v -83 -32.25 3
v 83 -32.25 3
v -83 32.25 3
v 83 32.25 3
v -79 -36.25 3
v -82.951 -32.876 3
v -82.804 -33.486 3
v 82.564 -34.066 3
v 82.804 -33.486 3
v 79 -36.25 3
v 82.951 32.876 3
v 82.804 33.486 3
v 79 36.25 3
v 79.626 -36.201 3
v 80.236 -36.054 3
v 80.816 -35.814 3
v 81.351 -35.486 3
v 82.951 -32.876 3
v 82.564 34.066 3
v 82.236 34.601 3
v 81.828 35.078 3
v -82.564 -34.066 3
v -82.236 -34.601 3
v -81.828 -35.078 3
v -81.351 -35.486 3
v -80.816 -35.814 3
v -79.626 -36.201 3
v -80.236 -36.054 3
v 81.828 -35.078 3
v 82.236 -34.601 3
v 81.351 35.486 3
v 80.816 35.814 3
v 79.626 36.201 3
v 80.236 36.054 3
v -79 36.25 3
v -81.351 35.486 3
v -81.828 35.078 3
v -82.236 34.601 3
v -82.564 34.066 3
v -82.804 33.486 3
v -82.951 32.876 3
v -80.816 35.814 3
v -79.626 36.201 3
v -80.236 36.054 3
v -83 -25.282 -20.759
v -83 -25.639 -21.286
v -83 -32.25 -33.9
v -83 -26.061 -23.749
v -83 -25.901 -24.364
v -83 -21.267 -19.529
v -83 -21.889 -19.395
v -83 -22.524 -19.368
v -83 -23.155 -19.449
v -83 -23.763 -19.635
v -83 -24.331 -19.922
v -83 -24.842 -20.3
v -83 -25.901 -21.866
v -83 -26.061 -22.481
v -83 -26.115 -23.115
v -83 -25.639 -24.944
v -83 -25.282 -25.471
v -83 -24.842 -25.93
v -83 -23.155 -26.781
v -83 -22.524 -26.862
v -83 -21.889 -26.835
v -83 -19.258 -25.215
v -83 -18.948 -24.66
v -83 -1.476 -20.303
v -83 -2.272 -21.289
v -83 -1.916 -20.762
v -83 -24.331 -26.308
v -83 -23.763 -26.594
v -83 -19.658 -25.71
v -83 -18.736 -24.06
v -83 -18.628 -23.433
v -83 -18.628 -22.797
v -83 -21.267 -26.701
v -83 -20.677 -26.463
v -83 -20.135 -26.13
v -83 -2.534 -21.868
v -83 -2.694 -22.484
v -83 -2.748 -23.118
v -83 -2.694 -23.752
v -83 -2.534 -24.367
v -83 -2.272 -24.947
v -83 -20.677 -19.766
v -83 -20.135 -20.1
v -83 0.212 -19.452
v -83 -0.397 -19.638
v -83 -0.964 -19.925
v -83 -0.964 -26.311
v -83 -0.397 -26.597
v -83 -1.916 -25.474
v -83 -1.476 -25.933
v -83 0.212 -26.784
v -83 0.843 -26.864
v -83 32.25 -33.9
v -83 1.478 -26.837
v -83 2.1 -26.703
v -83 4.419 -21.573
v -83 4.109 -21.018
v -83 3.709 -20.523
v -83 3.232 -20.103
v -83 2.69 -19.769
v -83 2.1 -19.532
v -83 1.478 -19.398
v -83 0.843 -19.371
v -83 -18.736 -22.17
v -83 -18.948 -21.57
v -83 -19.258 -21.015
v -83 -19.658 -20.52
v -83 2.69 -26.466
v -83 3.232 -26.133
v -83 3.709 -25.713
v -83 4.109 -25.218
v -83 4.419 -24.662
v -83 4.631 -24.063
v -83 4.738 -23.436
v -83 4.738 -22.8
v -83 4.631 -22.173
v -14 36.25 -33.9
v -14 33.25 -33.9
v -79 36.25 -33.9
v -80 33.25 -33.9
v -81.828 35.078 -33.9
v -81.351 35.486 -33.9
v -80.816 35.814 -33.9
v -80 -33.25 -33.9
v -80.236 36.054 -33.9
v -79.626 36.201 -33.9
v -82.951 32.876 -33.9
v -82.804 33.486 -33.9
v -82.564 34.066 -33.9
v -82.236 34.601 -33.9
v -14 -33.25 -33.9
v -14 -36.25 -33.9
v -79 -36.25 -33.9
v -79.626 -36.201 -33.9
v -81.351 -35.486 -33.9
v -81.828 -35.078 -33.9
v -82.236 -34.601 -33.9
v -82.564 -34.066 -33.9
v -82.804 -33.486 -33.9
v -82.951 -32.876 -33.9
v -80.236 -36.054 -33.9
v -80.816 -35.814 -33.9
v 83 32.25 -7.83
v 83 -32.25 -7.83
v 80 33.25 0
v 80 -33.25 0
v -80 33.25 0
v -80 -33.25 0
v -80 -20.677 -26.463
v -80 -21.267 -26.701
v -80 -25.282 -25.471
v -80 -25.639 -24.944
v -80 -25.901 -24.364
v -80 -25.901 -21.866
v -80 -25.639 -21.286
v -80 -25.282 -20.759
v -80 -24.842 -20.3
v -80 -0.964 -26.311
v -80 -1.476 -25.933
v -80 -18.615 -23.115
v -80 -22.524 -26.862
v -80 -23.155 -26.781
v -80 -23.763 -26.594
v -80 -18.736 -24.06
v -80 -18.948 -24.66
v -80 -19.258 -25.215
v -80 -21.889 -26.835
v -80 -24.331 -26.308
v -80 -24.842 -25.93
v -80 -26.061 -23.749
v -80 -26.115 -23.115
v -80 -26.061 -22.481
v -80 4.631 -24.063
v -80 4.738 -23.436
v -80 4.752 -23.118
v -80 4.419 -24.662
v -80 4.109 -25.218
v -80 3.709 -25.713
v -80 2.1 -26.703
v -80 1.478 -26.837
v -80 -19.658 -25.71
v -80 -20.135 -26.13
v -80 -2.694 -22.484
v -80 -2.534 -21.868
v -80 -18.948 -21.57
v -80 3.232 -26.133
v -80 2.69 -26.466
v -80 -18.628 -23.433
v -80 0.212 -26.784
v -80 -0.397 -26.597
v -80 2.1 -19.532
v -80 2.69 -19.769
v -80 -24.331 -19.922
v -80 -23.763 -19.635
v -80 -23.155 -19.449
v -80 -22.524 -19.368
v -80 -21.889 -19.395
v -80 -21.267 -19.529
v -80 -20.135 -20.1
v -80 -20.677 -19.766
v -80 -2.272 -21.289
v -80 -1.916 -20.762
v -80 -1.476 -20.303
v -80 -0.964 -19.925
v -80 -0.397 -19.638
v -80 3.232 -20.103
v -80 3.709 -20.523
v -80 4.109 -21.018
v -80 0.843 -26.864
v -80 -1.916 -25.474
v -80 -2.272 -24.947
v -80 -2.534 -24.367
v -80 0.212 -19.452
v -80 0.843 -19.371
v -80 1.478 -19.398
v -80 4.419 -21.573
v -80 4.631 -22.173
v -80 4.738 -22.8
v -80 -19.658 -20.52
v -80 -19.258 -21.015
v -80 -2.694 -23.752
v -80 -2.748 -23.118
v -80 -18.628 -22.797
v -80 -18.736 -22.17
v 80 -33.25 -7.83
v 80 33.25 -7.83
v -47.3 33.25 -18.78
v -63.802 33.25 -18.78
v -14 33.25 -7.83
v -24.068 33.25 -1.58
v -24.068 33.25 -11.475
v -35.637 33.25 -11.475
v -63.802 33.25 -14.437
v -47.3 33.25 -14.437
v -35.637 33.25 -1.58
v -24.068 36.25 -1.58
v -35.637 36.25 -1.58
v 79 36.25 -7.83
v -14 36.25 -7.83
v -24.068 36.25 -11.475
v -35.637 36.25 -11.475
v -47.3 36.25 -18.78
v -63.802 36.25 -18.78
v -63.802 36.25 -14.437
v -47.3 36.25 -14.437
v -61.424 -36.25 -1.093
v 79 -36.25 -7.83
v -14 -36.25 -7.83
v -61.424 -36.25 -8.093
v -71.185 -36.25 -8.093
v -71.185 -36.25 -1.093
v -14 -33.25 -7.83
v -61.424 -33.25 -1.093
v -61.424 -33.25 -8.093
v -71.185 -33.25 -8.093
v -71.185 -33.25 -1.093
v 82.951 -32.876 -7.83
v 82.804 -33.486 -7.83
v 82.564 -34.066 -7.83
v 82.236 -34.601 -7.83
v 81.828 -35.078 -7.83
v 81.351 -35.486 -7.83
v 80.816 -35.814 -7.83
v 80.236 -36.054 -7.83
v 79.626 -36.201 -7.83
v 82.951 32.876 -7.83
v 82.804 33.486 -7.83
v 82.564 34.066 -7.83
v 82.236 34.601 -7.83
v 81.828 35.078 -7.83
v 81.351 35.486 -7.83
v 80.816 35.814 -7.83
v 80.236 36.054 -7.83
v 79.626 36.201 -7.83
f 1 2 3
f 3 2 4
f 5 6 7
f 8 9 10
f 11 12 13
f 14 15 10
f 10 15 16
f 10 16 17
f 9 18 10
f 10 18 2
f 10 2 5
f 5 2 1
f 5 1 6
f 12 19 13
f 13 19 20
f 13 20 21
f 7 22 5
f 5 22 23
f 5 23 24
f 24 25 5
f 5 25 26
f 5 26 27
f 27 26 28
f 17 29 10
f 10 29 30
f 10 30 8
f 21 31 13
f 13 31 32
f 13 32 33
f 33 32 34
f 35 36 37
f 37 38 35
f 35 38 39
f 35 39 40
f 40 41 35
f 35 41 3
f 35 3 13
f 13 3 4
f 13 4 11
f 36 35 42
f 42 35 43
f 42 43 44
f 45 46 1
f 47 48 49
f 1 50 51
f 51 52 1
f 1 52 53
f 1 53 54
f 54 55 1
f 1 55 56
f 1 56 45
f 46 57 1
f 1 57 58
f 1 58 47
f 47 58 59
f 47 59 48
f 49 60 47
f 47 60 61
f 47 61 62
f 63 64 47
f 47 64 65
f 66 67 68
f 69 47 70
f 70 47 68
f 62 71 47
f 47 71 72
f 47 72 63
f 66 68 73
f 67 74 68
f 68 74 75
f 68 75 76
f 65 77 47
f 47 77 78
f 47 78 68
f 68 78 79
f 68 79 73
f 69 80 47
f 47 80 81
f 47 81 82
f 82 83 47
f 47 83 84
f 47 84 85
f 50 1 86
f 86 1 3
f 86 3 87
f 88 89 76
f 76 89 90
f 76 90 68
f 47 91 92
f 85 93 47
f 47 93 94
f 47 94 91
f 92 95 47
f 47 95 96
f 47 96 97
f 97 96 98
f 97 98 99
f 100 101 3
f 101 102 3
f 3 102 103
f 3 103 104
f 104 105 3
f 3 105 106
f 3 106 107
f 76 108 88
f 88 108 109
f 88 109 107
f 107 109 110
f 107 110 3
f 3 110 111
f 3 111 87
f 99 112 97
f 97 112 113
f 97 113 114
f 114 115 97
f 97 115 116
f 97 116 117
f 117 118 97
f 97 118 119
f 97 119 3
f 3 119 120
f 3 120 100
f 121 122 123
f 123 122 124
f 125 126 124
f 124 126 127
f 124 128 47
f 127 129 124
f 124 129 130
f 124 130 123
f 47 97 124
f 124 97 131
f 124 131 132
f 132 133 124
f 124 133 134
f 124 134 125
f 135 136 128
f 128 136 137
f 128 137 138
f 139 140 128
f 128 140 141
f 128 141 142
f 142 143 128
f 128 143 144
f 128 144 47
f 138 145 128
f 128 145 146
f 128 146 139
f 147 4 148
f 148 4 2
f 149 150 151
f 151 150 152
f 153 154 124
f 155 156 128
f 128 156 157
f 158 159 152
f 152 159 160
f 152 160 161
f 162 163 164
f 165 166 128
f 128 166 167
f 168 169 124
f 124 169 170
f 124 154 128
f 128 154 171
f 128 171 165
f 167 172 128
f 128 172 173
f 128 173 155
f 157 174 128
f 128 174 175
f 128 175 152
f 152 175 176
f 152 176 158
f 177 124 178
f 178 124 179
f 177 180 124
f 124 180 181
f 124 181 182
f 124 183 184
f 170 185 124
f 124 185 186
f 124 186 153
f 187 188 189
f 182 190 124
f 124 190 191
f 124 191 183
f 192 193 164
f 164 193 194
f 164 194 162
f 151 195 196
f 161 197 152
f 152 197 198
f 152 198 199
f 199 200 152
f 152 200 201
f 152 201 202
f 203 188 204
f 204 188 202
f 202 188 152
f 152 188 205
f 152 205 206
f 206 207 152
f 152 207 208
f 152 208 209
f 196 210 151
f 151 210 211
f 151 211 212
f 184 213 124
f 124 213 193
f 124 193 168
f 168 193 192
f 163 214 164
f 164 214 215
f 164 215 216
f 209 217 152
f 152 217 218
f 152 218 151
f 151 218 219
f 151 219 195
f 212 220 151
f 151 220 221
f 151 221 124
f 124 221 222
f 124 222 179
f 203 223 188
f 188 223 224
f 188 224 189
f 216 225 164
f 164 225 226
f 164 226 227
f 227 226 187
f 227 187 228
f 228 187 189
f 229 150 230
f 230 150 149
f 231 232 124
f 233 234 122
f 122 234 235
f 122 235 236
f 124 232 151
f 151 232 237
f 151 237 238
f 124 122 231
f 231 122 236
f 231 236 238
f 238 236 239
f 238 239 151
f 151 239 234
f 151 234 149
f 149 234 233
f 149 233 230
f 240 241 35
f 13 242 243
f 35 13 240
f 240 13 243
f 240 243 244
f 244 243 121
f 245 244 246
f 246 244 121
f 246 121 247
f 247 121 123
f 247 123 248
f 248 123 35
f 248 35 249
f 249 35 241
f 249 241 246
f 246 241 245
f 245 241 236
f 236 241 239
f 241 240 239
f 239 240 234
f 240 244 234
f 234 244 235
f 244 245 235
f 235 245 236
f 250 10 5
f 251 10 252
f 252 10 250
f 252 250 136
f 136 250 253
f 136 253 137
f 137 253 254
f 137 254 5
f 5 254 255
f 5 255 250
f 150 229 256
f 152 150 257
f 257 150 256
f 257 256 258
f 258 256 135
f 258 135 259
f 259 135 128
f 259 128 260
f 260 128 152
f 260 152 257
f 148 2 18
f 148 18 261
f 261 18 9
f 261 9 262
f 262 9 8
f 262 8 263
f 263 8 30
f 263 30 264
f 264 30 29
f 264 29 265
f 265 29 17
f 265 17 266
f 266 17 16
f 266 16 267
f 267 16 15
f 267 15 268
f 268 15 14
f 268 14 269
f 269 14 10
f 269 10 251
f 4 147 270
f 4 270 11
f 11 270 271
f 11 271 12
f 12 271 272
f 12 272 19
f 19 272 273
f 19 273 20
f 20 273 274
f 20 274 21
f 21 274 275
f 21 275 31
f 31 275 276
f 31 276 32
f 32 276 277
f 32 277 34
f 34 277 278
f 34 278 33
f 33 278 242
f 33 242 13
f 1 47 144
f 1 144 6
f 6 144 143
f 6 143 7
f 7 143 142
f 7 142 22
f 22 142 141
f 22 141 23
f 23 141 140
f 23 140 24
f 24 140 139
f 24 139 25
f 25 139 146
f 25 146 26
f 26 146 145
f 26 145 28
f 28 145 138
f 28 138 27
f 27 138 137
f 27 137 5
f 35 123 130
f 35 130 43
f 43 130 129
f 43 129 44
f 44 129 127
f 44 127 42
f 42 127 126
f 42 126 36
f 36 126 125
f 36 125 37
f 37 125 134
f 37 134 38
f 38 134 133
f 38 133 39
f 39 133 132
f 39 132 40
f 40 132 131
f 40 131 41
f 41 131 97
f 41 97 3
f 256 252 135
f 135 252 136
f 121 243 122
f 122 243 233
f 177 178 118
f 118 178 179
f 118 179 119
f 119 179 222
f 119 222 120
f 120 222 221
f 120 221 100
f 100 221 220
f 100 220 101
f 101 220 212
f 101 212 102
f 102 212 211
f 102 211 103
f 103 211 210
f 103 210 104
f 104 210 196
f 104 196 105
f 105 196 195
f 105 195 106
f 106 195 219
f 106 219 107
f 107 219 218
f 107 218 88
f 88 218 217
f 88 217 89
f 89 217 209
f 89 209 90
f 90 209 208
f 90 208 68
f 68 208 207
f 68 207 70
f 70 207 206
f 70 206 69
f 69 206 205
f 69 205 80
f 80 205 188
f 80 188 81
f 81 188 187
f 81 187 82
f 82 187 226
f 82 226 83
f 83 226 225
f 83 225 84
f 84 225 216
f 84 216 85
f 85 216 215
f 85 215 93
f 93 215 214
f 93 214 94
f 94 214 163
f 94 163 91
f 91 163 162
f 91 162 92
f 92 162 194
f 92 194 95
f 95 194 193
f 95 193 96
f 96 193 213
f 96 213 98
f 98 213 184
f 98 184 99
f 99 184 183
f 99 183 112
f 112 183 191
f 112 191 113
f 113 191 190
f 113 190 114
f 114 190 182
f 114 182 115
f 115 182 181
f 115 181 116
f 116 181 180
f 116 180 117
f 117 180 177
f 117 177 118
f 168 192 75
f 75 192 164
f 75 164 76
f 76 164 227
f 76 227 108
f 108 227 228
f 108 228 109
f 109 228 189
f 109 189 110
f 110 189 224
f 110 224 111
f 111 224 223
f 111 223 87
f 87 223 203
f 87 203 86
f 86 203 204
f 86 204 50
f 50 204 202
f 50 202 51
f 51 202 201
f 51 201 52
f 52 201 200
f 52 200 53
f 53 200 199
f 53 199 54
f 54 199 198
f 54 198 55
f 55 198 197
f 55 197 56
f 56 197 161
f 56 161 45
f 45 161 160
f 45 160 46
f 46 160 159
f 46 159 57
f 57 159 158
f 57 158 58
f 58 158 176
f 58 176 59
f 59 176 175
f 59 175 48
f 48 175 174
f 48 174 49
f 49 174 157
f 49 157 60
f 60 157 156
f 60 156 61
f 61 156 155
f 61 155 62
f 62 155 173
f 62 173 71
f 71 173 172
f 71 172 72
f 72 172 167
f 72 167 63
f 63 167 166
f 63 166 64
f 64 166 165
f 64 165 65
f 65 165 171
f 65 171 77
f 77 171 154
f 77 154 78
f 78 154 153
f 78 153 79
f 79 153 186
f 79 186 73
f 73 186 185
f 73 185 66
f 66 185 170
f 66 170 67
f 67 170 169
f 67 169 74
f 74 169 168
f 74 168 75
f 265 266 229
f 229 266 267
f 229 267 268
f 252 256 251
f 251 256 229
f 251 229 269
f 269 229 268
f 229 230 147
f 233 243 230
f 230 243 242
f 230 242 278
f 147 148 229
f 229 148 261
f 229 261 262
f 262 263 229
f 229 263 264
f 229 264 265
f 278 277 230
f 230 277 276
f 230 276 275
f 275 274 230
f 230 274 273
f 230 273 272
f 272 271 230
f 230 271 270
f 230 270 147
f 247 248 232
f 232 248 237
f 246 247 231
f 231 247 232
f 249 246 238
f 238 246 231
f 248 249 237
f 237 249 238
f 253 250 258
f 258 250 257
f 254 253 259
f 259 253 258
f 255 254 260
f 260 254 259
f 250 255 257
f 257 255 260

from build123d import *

# Parameters (mm, degrees)
ESQUISSE1_W                  = 160
ESQUISSE1_H                  = 66.5
BOSS_EXTRU_1_DEPTH           = 3
ESQUISSE3_W                  = 3
ESQUISSE3_H                  = 70.75
BOSS_EXTRU_2_DEPTH           = 33
ESQUISSE5_W                  = 166
ESQUISSE5_H                  = 33
ESQUISSE5_W_2                = 11.569169734
ESQUISSE5_H_2                = 9.894756015
BOSS_EXTRU_3_DEPTH           = 3
ENL_V_MAT_EXTRU_1_DEPTH      = 500
ENL_V_MAT_EXTRU_1_DEPTH_BACK = 13
ESQUISSE6_W                  = 33
ESQUISSE6_H                  = 1.25
CONG_2_R                     = 4
ESQUISSE7_W                  = 98.078954594
ESQUISSE7_H                  = 17.67
ENL_V_MAT_EXTRU_2_DEPTH      = 103
ESQUISSE8_R                  = 3.75
ENL_V_MAT_EXTRU_3_DEPTH      = 60
ESQUISSE9_W                  = 103.919717687
ESQUISSE9_H                  = 4.5
ENL_V_MAT_EXTRU_4_DEPTH      = 90
ESQUISSE11_W                 = 11.569169734
ESQUISSE11_H                 = 9.894756015
BOSS_EXTRU_4_DEPTH           = 3
D_PLACER_START               = -33.9
D_PLACER_LA_FACE2_DEPTH      = 3.9
ESQUISSE13_W                 = 16.502074088
ESQUISSE13_H                 = 4.3431
ENL_V_MAT_EXTRU_5_DEPTH      = 10
ESQUISSE15_W                 = 9.760998185
ESQUISSE15_H                 = 7
ENL_V_MAT_EXTRU_6_DEPTH      = 10


# Read off the part's stored shape, not the designer's step: Déplacer la face2
with BuildPart() as part:
    # Esquisse1 → Boss.-Extru.1 (new body)
    with BuildSketch(Plane.XY):
        Rectangle(ESQUISSE1_W, ESQUISSE1_H)
    extrude(amount=BOSS_EXTRU_1_DEPTH)

    # Esquisse3 → Boss.-Extru.2 (add)
    with BuildSketch(Plane.XY.offset(3)):
        with Locations((-81.5, -2.125)):
            Rectangle(ESQUISSE3_W, ESQUISSE3_H)
    boss_extru_2 = extrude(amount=-BOSS_EXTRU_2_DEPTH)

    # Symétrie1: Boss.-Extru.2 across plane
    add(boss_extru_2.mirror(Plane(origin=(0, 0, 0), x_dir=(0, 0, 1), z_dir=(1, 0, 0))))

    # Esquisse5 → Boss.-Extru.3 (add)
    with BuildSketch(Plane(origin=(0, 33.25, 0), x_dir=(1, 0, 0), z_dir=(0, 1, 0))):
        with Locations((0, 13.5)):
            Rectangle(ESQUISSE5_W, ESQUISSE5_H)
        with Locations((-29.852297111, 6.527378008)):
            Rectangle(ESQUISSE5_W_2, ESQUISSE5_H_2, mode=Mode.SUBTRACT)
    boss_extru_3 = extrude(amount=BOSS_EXTRU_3_DEPTH)

    # Symétrie2: Boss.-Extru.3 across plane
    add(boss_extru_3.mirror(Plane(origin=(0, 0, 0), x_dir=(0, 0, 1), z_dir=(0, -1, 0))))

    # Esquisse6 → Enlèv. mat.-Extru.1 (cut, two sides: drawn at the far end of the back side and taken through both)
    with BuildSketch(Plane.ZY.offset(-80).offset(-ENL_V_MAT_EXTRU_1_DEPTH_BACK)):
        with Locations((-13.5, -36.875)):
            Rectangle(ESQUISSE6_W, ESQUISSE6_H)
    extrude(amount=ENL_V_MAT_EXTRU_1_DEPTH + ENL_V_MAT_EXTRU_1_DEPTH_BACK, mode=Mode.SUBTRACT)

    # Congé2
    cong_2_edges = [part.edges().sort_by_distance(p)[0] for p in [
        (-83, -36.25, -13.5),
        (83, -36.25, -13.5),
        (-83, 36.25, -13.5),
        (83, 36.25, -13.5),
    ]]
    fillet(cong_2_edges, radius=CONG_2_R)

    # Esquisse7 → Enlèv. mat.-Extru.2 (cut)
    with BuildSketch(Plane(origin=(0, 36.25, 0), x_dir=(1, 0, 0), z_dir=(0, 1, 0))):
        with Locations((35.039477297, 21.165)):
            Rectangle(ESQUISSE7_W, ESQUISSE7_H)
    extrude(amount=-ENL_V_MAT_EXTRU_2_DEPTH, mode=Mode.SUBTRACT)

    # Esquisse8 → Enlèv. mat.-Extru.3 (cut)
    with BuildSketch(Plane.ZY.offset(83)):
        with Locations(Location((-23.114912873, -22.364838355, 0), (0, 0, 270))):
            Circle(ESQUISSE8_R)
        with Locations(Location((-23.117764577, 1.001660884, 0), (0, 0, 270))):
            Circle(ESQUISSE8_R)
    extrude(amount=-ENL_V_MAT_EXTRU_3_DEPTH, mode=Mode.SUBTRACT)

    # Esquisse9 → Enlèv. mat.-Extru.4 (cut)
    with BuildSketch(Plane(origin=(0, 36.25, 0), x_dir=(1, 0, 0), z_dir=(0, 1, 0))):
        with Locations((37.959858844, 10.08)):
            Rectangle(ESQUISSE9_W, ESQUISSE9_H)
    extrude(amount=-ENL_V_MAT_EXTRU_4_DEPTH, mode=Mode.SUBTRACT)

    # Esquisse11 → Boss.-Extru.4 (add)
    with BuildSketch(Plane.XZ.offset(36.25)):
        with Locations((-29.852297111, -6.527378008)):
            Rectangle(ESQUISSE11_W, ESQUISSE11_H)
    extrude(amount=-BOSS_EXTRU_4_DEPTH)

    # Déplacer la face2 outline → Déplacer la face2 (add)
    with BuildSketch(Plane.XY.offset(D_PLACER_START)):
        with BuildLine():
            ThreePointArc((-79, 36.25), (-81.828427125, 35.078427125), (-83, 32.25))
            Line((-83, 32.25), (-83, -32.25))
            ThreePointArc((-83, -32.25), (-81.828427125, -35.078427125), (-79, -36.25))
            Line((-79, -36.25), (-14, -36.25))
            Line((-14, -36.25), (-14, -33.25))
            Line((-14, -33.25), (-80, -33.25))
            Line((-80, -33.25), (-80, 33.25))
            Line((-80, 33.25), (-14, 33.25))
            Line((-14, 33.25), (-14, 36.25))
            Line((-14, 36.25), (-79, 36.25))
        make_face()
    extrude(amount=D_PLACER_LA_FACE2_DEPTH)

    # Esquisse13 → Enlèv. mat.-Extru.5 (cut)
    with BuildSketch(Plane(origin=(0, 36.25, 0), x_dir=(1, 0, 0), z_dir=(0, 1, 0))):
        with Locations((-55.551088515, 16.608317679)):
            Rectangle(ESQUISSE13_W, ESQUISSE13_H)
    extrude(amount=-ENL_V_MAT_EXTRU_5_DEPTH, mode=Mode.SUBTRACT)

    # Esquisse15 → Enlèv. mat.-Extru.6 (cut)
    with BuildSketch(Plane.XZ.offset(36.25)):
        with Locations((-66.304513779, -4.593344901)):
            Rectangle(ESQUISSE15_W, ESQUISSE15_H)
    extrude(amount=-ENL_V_MAT_EXTRU_6_DEPTH, mode=Mode.SUBTRACT)


solid = part.part
